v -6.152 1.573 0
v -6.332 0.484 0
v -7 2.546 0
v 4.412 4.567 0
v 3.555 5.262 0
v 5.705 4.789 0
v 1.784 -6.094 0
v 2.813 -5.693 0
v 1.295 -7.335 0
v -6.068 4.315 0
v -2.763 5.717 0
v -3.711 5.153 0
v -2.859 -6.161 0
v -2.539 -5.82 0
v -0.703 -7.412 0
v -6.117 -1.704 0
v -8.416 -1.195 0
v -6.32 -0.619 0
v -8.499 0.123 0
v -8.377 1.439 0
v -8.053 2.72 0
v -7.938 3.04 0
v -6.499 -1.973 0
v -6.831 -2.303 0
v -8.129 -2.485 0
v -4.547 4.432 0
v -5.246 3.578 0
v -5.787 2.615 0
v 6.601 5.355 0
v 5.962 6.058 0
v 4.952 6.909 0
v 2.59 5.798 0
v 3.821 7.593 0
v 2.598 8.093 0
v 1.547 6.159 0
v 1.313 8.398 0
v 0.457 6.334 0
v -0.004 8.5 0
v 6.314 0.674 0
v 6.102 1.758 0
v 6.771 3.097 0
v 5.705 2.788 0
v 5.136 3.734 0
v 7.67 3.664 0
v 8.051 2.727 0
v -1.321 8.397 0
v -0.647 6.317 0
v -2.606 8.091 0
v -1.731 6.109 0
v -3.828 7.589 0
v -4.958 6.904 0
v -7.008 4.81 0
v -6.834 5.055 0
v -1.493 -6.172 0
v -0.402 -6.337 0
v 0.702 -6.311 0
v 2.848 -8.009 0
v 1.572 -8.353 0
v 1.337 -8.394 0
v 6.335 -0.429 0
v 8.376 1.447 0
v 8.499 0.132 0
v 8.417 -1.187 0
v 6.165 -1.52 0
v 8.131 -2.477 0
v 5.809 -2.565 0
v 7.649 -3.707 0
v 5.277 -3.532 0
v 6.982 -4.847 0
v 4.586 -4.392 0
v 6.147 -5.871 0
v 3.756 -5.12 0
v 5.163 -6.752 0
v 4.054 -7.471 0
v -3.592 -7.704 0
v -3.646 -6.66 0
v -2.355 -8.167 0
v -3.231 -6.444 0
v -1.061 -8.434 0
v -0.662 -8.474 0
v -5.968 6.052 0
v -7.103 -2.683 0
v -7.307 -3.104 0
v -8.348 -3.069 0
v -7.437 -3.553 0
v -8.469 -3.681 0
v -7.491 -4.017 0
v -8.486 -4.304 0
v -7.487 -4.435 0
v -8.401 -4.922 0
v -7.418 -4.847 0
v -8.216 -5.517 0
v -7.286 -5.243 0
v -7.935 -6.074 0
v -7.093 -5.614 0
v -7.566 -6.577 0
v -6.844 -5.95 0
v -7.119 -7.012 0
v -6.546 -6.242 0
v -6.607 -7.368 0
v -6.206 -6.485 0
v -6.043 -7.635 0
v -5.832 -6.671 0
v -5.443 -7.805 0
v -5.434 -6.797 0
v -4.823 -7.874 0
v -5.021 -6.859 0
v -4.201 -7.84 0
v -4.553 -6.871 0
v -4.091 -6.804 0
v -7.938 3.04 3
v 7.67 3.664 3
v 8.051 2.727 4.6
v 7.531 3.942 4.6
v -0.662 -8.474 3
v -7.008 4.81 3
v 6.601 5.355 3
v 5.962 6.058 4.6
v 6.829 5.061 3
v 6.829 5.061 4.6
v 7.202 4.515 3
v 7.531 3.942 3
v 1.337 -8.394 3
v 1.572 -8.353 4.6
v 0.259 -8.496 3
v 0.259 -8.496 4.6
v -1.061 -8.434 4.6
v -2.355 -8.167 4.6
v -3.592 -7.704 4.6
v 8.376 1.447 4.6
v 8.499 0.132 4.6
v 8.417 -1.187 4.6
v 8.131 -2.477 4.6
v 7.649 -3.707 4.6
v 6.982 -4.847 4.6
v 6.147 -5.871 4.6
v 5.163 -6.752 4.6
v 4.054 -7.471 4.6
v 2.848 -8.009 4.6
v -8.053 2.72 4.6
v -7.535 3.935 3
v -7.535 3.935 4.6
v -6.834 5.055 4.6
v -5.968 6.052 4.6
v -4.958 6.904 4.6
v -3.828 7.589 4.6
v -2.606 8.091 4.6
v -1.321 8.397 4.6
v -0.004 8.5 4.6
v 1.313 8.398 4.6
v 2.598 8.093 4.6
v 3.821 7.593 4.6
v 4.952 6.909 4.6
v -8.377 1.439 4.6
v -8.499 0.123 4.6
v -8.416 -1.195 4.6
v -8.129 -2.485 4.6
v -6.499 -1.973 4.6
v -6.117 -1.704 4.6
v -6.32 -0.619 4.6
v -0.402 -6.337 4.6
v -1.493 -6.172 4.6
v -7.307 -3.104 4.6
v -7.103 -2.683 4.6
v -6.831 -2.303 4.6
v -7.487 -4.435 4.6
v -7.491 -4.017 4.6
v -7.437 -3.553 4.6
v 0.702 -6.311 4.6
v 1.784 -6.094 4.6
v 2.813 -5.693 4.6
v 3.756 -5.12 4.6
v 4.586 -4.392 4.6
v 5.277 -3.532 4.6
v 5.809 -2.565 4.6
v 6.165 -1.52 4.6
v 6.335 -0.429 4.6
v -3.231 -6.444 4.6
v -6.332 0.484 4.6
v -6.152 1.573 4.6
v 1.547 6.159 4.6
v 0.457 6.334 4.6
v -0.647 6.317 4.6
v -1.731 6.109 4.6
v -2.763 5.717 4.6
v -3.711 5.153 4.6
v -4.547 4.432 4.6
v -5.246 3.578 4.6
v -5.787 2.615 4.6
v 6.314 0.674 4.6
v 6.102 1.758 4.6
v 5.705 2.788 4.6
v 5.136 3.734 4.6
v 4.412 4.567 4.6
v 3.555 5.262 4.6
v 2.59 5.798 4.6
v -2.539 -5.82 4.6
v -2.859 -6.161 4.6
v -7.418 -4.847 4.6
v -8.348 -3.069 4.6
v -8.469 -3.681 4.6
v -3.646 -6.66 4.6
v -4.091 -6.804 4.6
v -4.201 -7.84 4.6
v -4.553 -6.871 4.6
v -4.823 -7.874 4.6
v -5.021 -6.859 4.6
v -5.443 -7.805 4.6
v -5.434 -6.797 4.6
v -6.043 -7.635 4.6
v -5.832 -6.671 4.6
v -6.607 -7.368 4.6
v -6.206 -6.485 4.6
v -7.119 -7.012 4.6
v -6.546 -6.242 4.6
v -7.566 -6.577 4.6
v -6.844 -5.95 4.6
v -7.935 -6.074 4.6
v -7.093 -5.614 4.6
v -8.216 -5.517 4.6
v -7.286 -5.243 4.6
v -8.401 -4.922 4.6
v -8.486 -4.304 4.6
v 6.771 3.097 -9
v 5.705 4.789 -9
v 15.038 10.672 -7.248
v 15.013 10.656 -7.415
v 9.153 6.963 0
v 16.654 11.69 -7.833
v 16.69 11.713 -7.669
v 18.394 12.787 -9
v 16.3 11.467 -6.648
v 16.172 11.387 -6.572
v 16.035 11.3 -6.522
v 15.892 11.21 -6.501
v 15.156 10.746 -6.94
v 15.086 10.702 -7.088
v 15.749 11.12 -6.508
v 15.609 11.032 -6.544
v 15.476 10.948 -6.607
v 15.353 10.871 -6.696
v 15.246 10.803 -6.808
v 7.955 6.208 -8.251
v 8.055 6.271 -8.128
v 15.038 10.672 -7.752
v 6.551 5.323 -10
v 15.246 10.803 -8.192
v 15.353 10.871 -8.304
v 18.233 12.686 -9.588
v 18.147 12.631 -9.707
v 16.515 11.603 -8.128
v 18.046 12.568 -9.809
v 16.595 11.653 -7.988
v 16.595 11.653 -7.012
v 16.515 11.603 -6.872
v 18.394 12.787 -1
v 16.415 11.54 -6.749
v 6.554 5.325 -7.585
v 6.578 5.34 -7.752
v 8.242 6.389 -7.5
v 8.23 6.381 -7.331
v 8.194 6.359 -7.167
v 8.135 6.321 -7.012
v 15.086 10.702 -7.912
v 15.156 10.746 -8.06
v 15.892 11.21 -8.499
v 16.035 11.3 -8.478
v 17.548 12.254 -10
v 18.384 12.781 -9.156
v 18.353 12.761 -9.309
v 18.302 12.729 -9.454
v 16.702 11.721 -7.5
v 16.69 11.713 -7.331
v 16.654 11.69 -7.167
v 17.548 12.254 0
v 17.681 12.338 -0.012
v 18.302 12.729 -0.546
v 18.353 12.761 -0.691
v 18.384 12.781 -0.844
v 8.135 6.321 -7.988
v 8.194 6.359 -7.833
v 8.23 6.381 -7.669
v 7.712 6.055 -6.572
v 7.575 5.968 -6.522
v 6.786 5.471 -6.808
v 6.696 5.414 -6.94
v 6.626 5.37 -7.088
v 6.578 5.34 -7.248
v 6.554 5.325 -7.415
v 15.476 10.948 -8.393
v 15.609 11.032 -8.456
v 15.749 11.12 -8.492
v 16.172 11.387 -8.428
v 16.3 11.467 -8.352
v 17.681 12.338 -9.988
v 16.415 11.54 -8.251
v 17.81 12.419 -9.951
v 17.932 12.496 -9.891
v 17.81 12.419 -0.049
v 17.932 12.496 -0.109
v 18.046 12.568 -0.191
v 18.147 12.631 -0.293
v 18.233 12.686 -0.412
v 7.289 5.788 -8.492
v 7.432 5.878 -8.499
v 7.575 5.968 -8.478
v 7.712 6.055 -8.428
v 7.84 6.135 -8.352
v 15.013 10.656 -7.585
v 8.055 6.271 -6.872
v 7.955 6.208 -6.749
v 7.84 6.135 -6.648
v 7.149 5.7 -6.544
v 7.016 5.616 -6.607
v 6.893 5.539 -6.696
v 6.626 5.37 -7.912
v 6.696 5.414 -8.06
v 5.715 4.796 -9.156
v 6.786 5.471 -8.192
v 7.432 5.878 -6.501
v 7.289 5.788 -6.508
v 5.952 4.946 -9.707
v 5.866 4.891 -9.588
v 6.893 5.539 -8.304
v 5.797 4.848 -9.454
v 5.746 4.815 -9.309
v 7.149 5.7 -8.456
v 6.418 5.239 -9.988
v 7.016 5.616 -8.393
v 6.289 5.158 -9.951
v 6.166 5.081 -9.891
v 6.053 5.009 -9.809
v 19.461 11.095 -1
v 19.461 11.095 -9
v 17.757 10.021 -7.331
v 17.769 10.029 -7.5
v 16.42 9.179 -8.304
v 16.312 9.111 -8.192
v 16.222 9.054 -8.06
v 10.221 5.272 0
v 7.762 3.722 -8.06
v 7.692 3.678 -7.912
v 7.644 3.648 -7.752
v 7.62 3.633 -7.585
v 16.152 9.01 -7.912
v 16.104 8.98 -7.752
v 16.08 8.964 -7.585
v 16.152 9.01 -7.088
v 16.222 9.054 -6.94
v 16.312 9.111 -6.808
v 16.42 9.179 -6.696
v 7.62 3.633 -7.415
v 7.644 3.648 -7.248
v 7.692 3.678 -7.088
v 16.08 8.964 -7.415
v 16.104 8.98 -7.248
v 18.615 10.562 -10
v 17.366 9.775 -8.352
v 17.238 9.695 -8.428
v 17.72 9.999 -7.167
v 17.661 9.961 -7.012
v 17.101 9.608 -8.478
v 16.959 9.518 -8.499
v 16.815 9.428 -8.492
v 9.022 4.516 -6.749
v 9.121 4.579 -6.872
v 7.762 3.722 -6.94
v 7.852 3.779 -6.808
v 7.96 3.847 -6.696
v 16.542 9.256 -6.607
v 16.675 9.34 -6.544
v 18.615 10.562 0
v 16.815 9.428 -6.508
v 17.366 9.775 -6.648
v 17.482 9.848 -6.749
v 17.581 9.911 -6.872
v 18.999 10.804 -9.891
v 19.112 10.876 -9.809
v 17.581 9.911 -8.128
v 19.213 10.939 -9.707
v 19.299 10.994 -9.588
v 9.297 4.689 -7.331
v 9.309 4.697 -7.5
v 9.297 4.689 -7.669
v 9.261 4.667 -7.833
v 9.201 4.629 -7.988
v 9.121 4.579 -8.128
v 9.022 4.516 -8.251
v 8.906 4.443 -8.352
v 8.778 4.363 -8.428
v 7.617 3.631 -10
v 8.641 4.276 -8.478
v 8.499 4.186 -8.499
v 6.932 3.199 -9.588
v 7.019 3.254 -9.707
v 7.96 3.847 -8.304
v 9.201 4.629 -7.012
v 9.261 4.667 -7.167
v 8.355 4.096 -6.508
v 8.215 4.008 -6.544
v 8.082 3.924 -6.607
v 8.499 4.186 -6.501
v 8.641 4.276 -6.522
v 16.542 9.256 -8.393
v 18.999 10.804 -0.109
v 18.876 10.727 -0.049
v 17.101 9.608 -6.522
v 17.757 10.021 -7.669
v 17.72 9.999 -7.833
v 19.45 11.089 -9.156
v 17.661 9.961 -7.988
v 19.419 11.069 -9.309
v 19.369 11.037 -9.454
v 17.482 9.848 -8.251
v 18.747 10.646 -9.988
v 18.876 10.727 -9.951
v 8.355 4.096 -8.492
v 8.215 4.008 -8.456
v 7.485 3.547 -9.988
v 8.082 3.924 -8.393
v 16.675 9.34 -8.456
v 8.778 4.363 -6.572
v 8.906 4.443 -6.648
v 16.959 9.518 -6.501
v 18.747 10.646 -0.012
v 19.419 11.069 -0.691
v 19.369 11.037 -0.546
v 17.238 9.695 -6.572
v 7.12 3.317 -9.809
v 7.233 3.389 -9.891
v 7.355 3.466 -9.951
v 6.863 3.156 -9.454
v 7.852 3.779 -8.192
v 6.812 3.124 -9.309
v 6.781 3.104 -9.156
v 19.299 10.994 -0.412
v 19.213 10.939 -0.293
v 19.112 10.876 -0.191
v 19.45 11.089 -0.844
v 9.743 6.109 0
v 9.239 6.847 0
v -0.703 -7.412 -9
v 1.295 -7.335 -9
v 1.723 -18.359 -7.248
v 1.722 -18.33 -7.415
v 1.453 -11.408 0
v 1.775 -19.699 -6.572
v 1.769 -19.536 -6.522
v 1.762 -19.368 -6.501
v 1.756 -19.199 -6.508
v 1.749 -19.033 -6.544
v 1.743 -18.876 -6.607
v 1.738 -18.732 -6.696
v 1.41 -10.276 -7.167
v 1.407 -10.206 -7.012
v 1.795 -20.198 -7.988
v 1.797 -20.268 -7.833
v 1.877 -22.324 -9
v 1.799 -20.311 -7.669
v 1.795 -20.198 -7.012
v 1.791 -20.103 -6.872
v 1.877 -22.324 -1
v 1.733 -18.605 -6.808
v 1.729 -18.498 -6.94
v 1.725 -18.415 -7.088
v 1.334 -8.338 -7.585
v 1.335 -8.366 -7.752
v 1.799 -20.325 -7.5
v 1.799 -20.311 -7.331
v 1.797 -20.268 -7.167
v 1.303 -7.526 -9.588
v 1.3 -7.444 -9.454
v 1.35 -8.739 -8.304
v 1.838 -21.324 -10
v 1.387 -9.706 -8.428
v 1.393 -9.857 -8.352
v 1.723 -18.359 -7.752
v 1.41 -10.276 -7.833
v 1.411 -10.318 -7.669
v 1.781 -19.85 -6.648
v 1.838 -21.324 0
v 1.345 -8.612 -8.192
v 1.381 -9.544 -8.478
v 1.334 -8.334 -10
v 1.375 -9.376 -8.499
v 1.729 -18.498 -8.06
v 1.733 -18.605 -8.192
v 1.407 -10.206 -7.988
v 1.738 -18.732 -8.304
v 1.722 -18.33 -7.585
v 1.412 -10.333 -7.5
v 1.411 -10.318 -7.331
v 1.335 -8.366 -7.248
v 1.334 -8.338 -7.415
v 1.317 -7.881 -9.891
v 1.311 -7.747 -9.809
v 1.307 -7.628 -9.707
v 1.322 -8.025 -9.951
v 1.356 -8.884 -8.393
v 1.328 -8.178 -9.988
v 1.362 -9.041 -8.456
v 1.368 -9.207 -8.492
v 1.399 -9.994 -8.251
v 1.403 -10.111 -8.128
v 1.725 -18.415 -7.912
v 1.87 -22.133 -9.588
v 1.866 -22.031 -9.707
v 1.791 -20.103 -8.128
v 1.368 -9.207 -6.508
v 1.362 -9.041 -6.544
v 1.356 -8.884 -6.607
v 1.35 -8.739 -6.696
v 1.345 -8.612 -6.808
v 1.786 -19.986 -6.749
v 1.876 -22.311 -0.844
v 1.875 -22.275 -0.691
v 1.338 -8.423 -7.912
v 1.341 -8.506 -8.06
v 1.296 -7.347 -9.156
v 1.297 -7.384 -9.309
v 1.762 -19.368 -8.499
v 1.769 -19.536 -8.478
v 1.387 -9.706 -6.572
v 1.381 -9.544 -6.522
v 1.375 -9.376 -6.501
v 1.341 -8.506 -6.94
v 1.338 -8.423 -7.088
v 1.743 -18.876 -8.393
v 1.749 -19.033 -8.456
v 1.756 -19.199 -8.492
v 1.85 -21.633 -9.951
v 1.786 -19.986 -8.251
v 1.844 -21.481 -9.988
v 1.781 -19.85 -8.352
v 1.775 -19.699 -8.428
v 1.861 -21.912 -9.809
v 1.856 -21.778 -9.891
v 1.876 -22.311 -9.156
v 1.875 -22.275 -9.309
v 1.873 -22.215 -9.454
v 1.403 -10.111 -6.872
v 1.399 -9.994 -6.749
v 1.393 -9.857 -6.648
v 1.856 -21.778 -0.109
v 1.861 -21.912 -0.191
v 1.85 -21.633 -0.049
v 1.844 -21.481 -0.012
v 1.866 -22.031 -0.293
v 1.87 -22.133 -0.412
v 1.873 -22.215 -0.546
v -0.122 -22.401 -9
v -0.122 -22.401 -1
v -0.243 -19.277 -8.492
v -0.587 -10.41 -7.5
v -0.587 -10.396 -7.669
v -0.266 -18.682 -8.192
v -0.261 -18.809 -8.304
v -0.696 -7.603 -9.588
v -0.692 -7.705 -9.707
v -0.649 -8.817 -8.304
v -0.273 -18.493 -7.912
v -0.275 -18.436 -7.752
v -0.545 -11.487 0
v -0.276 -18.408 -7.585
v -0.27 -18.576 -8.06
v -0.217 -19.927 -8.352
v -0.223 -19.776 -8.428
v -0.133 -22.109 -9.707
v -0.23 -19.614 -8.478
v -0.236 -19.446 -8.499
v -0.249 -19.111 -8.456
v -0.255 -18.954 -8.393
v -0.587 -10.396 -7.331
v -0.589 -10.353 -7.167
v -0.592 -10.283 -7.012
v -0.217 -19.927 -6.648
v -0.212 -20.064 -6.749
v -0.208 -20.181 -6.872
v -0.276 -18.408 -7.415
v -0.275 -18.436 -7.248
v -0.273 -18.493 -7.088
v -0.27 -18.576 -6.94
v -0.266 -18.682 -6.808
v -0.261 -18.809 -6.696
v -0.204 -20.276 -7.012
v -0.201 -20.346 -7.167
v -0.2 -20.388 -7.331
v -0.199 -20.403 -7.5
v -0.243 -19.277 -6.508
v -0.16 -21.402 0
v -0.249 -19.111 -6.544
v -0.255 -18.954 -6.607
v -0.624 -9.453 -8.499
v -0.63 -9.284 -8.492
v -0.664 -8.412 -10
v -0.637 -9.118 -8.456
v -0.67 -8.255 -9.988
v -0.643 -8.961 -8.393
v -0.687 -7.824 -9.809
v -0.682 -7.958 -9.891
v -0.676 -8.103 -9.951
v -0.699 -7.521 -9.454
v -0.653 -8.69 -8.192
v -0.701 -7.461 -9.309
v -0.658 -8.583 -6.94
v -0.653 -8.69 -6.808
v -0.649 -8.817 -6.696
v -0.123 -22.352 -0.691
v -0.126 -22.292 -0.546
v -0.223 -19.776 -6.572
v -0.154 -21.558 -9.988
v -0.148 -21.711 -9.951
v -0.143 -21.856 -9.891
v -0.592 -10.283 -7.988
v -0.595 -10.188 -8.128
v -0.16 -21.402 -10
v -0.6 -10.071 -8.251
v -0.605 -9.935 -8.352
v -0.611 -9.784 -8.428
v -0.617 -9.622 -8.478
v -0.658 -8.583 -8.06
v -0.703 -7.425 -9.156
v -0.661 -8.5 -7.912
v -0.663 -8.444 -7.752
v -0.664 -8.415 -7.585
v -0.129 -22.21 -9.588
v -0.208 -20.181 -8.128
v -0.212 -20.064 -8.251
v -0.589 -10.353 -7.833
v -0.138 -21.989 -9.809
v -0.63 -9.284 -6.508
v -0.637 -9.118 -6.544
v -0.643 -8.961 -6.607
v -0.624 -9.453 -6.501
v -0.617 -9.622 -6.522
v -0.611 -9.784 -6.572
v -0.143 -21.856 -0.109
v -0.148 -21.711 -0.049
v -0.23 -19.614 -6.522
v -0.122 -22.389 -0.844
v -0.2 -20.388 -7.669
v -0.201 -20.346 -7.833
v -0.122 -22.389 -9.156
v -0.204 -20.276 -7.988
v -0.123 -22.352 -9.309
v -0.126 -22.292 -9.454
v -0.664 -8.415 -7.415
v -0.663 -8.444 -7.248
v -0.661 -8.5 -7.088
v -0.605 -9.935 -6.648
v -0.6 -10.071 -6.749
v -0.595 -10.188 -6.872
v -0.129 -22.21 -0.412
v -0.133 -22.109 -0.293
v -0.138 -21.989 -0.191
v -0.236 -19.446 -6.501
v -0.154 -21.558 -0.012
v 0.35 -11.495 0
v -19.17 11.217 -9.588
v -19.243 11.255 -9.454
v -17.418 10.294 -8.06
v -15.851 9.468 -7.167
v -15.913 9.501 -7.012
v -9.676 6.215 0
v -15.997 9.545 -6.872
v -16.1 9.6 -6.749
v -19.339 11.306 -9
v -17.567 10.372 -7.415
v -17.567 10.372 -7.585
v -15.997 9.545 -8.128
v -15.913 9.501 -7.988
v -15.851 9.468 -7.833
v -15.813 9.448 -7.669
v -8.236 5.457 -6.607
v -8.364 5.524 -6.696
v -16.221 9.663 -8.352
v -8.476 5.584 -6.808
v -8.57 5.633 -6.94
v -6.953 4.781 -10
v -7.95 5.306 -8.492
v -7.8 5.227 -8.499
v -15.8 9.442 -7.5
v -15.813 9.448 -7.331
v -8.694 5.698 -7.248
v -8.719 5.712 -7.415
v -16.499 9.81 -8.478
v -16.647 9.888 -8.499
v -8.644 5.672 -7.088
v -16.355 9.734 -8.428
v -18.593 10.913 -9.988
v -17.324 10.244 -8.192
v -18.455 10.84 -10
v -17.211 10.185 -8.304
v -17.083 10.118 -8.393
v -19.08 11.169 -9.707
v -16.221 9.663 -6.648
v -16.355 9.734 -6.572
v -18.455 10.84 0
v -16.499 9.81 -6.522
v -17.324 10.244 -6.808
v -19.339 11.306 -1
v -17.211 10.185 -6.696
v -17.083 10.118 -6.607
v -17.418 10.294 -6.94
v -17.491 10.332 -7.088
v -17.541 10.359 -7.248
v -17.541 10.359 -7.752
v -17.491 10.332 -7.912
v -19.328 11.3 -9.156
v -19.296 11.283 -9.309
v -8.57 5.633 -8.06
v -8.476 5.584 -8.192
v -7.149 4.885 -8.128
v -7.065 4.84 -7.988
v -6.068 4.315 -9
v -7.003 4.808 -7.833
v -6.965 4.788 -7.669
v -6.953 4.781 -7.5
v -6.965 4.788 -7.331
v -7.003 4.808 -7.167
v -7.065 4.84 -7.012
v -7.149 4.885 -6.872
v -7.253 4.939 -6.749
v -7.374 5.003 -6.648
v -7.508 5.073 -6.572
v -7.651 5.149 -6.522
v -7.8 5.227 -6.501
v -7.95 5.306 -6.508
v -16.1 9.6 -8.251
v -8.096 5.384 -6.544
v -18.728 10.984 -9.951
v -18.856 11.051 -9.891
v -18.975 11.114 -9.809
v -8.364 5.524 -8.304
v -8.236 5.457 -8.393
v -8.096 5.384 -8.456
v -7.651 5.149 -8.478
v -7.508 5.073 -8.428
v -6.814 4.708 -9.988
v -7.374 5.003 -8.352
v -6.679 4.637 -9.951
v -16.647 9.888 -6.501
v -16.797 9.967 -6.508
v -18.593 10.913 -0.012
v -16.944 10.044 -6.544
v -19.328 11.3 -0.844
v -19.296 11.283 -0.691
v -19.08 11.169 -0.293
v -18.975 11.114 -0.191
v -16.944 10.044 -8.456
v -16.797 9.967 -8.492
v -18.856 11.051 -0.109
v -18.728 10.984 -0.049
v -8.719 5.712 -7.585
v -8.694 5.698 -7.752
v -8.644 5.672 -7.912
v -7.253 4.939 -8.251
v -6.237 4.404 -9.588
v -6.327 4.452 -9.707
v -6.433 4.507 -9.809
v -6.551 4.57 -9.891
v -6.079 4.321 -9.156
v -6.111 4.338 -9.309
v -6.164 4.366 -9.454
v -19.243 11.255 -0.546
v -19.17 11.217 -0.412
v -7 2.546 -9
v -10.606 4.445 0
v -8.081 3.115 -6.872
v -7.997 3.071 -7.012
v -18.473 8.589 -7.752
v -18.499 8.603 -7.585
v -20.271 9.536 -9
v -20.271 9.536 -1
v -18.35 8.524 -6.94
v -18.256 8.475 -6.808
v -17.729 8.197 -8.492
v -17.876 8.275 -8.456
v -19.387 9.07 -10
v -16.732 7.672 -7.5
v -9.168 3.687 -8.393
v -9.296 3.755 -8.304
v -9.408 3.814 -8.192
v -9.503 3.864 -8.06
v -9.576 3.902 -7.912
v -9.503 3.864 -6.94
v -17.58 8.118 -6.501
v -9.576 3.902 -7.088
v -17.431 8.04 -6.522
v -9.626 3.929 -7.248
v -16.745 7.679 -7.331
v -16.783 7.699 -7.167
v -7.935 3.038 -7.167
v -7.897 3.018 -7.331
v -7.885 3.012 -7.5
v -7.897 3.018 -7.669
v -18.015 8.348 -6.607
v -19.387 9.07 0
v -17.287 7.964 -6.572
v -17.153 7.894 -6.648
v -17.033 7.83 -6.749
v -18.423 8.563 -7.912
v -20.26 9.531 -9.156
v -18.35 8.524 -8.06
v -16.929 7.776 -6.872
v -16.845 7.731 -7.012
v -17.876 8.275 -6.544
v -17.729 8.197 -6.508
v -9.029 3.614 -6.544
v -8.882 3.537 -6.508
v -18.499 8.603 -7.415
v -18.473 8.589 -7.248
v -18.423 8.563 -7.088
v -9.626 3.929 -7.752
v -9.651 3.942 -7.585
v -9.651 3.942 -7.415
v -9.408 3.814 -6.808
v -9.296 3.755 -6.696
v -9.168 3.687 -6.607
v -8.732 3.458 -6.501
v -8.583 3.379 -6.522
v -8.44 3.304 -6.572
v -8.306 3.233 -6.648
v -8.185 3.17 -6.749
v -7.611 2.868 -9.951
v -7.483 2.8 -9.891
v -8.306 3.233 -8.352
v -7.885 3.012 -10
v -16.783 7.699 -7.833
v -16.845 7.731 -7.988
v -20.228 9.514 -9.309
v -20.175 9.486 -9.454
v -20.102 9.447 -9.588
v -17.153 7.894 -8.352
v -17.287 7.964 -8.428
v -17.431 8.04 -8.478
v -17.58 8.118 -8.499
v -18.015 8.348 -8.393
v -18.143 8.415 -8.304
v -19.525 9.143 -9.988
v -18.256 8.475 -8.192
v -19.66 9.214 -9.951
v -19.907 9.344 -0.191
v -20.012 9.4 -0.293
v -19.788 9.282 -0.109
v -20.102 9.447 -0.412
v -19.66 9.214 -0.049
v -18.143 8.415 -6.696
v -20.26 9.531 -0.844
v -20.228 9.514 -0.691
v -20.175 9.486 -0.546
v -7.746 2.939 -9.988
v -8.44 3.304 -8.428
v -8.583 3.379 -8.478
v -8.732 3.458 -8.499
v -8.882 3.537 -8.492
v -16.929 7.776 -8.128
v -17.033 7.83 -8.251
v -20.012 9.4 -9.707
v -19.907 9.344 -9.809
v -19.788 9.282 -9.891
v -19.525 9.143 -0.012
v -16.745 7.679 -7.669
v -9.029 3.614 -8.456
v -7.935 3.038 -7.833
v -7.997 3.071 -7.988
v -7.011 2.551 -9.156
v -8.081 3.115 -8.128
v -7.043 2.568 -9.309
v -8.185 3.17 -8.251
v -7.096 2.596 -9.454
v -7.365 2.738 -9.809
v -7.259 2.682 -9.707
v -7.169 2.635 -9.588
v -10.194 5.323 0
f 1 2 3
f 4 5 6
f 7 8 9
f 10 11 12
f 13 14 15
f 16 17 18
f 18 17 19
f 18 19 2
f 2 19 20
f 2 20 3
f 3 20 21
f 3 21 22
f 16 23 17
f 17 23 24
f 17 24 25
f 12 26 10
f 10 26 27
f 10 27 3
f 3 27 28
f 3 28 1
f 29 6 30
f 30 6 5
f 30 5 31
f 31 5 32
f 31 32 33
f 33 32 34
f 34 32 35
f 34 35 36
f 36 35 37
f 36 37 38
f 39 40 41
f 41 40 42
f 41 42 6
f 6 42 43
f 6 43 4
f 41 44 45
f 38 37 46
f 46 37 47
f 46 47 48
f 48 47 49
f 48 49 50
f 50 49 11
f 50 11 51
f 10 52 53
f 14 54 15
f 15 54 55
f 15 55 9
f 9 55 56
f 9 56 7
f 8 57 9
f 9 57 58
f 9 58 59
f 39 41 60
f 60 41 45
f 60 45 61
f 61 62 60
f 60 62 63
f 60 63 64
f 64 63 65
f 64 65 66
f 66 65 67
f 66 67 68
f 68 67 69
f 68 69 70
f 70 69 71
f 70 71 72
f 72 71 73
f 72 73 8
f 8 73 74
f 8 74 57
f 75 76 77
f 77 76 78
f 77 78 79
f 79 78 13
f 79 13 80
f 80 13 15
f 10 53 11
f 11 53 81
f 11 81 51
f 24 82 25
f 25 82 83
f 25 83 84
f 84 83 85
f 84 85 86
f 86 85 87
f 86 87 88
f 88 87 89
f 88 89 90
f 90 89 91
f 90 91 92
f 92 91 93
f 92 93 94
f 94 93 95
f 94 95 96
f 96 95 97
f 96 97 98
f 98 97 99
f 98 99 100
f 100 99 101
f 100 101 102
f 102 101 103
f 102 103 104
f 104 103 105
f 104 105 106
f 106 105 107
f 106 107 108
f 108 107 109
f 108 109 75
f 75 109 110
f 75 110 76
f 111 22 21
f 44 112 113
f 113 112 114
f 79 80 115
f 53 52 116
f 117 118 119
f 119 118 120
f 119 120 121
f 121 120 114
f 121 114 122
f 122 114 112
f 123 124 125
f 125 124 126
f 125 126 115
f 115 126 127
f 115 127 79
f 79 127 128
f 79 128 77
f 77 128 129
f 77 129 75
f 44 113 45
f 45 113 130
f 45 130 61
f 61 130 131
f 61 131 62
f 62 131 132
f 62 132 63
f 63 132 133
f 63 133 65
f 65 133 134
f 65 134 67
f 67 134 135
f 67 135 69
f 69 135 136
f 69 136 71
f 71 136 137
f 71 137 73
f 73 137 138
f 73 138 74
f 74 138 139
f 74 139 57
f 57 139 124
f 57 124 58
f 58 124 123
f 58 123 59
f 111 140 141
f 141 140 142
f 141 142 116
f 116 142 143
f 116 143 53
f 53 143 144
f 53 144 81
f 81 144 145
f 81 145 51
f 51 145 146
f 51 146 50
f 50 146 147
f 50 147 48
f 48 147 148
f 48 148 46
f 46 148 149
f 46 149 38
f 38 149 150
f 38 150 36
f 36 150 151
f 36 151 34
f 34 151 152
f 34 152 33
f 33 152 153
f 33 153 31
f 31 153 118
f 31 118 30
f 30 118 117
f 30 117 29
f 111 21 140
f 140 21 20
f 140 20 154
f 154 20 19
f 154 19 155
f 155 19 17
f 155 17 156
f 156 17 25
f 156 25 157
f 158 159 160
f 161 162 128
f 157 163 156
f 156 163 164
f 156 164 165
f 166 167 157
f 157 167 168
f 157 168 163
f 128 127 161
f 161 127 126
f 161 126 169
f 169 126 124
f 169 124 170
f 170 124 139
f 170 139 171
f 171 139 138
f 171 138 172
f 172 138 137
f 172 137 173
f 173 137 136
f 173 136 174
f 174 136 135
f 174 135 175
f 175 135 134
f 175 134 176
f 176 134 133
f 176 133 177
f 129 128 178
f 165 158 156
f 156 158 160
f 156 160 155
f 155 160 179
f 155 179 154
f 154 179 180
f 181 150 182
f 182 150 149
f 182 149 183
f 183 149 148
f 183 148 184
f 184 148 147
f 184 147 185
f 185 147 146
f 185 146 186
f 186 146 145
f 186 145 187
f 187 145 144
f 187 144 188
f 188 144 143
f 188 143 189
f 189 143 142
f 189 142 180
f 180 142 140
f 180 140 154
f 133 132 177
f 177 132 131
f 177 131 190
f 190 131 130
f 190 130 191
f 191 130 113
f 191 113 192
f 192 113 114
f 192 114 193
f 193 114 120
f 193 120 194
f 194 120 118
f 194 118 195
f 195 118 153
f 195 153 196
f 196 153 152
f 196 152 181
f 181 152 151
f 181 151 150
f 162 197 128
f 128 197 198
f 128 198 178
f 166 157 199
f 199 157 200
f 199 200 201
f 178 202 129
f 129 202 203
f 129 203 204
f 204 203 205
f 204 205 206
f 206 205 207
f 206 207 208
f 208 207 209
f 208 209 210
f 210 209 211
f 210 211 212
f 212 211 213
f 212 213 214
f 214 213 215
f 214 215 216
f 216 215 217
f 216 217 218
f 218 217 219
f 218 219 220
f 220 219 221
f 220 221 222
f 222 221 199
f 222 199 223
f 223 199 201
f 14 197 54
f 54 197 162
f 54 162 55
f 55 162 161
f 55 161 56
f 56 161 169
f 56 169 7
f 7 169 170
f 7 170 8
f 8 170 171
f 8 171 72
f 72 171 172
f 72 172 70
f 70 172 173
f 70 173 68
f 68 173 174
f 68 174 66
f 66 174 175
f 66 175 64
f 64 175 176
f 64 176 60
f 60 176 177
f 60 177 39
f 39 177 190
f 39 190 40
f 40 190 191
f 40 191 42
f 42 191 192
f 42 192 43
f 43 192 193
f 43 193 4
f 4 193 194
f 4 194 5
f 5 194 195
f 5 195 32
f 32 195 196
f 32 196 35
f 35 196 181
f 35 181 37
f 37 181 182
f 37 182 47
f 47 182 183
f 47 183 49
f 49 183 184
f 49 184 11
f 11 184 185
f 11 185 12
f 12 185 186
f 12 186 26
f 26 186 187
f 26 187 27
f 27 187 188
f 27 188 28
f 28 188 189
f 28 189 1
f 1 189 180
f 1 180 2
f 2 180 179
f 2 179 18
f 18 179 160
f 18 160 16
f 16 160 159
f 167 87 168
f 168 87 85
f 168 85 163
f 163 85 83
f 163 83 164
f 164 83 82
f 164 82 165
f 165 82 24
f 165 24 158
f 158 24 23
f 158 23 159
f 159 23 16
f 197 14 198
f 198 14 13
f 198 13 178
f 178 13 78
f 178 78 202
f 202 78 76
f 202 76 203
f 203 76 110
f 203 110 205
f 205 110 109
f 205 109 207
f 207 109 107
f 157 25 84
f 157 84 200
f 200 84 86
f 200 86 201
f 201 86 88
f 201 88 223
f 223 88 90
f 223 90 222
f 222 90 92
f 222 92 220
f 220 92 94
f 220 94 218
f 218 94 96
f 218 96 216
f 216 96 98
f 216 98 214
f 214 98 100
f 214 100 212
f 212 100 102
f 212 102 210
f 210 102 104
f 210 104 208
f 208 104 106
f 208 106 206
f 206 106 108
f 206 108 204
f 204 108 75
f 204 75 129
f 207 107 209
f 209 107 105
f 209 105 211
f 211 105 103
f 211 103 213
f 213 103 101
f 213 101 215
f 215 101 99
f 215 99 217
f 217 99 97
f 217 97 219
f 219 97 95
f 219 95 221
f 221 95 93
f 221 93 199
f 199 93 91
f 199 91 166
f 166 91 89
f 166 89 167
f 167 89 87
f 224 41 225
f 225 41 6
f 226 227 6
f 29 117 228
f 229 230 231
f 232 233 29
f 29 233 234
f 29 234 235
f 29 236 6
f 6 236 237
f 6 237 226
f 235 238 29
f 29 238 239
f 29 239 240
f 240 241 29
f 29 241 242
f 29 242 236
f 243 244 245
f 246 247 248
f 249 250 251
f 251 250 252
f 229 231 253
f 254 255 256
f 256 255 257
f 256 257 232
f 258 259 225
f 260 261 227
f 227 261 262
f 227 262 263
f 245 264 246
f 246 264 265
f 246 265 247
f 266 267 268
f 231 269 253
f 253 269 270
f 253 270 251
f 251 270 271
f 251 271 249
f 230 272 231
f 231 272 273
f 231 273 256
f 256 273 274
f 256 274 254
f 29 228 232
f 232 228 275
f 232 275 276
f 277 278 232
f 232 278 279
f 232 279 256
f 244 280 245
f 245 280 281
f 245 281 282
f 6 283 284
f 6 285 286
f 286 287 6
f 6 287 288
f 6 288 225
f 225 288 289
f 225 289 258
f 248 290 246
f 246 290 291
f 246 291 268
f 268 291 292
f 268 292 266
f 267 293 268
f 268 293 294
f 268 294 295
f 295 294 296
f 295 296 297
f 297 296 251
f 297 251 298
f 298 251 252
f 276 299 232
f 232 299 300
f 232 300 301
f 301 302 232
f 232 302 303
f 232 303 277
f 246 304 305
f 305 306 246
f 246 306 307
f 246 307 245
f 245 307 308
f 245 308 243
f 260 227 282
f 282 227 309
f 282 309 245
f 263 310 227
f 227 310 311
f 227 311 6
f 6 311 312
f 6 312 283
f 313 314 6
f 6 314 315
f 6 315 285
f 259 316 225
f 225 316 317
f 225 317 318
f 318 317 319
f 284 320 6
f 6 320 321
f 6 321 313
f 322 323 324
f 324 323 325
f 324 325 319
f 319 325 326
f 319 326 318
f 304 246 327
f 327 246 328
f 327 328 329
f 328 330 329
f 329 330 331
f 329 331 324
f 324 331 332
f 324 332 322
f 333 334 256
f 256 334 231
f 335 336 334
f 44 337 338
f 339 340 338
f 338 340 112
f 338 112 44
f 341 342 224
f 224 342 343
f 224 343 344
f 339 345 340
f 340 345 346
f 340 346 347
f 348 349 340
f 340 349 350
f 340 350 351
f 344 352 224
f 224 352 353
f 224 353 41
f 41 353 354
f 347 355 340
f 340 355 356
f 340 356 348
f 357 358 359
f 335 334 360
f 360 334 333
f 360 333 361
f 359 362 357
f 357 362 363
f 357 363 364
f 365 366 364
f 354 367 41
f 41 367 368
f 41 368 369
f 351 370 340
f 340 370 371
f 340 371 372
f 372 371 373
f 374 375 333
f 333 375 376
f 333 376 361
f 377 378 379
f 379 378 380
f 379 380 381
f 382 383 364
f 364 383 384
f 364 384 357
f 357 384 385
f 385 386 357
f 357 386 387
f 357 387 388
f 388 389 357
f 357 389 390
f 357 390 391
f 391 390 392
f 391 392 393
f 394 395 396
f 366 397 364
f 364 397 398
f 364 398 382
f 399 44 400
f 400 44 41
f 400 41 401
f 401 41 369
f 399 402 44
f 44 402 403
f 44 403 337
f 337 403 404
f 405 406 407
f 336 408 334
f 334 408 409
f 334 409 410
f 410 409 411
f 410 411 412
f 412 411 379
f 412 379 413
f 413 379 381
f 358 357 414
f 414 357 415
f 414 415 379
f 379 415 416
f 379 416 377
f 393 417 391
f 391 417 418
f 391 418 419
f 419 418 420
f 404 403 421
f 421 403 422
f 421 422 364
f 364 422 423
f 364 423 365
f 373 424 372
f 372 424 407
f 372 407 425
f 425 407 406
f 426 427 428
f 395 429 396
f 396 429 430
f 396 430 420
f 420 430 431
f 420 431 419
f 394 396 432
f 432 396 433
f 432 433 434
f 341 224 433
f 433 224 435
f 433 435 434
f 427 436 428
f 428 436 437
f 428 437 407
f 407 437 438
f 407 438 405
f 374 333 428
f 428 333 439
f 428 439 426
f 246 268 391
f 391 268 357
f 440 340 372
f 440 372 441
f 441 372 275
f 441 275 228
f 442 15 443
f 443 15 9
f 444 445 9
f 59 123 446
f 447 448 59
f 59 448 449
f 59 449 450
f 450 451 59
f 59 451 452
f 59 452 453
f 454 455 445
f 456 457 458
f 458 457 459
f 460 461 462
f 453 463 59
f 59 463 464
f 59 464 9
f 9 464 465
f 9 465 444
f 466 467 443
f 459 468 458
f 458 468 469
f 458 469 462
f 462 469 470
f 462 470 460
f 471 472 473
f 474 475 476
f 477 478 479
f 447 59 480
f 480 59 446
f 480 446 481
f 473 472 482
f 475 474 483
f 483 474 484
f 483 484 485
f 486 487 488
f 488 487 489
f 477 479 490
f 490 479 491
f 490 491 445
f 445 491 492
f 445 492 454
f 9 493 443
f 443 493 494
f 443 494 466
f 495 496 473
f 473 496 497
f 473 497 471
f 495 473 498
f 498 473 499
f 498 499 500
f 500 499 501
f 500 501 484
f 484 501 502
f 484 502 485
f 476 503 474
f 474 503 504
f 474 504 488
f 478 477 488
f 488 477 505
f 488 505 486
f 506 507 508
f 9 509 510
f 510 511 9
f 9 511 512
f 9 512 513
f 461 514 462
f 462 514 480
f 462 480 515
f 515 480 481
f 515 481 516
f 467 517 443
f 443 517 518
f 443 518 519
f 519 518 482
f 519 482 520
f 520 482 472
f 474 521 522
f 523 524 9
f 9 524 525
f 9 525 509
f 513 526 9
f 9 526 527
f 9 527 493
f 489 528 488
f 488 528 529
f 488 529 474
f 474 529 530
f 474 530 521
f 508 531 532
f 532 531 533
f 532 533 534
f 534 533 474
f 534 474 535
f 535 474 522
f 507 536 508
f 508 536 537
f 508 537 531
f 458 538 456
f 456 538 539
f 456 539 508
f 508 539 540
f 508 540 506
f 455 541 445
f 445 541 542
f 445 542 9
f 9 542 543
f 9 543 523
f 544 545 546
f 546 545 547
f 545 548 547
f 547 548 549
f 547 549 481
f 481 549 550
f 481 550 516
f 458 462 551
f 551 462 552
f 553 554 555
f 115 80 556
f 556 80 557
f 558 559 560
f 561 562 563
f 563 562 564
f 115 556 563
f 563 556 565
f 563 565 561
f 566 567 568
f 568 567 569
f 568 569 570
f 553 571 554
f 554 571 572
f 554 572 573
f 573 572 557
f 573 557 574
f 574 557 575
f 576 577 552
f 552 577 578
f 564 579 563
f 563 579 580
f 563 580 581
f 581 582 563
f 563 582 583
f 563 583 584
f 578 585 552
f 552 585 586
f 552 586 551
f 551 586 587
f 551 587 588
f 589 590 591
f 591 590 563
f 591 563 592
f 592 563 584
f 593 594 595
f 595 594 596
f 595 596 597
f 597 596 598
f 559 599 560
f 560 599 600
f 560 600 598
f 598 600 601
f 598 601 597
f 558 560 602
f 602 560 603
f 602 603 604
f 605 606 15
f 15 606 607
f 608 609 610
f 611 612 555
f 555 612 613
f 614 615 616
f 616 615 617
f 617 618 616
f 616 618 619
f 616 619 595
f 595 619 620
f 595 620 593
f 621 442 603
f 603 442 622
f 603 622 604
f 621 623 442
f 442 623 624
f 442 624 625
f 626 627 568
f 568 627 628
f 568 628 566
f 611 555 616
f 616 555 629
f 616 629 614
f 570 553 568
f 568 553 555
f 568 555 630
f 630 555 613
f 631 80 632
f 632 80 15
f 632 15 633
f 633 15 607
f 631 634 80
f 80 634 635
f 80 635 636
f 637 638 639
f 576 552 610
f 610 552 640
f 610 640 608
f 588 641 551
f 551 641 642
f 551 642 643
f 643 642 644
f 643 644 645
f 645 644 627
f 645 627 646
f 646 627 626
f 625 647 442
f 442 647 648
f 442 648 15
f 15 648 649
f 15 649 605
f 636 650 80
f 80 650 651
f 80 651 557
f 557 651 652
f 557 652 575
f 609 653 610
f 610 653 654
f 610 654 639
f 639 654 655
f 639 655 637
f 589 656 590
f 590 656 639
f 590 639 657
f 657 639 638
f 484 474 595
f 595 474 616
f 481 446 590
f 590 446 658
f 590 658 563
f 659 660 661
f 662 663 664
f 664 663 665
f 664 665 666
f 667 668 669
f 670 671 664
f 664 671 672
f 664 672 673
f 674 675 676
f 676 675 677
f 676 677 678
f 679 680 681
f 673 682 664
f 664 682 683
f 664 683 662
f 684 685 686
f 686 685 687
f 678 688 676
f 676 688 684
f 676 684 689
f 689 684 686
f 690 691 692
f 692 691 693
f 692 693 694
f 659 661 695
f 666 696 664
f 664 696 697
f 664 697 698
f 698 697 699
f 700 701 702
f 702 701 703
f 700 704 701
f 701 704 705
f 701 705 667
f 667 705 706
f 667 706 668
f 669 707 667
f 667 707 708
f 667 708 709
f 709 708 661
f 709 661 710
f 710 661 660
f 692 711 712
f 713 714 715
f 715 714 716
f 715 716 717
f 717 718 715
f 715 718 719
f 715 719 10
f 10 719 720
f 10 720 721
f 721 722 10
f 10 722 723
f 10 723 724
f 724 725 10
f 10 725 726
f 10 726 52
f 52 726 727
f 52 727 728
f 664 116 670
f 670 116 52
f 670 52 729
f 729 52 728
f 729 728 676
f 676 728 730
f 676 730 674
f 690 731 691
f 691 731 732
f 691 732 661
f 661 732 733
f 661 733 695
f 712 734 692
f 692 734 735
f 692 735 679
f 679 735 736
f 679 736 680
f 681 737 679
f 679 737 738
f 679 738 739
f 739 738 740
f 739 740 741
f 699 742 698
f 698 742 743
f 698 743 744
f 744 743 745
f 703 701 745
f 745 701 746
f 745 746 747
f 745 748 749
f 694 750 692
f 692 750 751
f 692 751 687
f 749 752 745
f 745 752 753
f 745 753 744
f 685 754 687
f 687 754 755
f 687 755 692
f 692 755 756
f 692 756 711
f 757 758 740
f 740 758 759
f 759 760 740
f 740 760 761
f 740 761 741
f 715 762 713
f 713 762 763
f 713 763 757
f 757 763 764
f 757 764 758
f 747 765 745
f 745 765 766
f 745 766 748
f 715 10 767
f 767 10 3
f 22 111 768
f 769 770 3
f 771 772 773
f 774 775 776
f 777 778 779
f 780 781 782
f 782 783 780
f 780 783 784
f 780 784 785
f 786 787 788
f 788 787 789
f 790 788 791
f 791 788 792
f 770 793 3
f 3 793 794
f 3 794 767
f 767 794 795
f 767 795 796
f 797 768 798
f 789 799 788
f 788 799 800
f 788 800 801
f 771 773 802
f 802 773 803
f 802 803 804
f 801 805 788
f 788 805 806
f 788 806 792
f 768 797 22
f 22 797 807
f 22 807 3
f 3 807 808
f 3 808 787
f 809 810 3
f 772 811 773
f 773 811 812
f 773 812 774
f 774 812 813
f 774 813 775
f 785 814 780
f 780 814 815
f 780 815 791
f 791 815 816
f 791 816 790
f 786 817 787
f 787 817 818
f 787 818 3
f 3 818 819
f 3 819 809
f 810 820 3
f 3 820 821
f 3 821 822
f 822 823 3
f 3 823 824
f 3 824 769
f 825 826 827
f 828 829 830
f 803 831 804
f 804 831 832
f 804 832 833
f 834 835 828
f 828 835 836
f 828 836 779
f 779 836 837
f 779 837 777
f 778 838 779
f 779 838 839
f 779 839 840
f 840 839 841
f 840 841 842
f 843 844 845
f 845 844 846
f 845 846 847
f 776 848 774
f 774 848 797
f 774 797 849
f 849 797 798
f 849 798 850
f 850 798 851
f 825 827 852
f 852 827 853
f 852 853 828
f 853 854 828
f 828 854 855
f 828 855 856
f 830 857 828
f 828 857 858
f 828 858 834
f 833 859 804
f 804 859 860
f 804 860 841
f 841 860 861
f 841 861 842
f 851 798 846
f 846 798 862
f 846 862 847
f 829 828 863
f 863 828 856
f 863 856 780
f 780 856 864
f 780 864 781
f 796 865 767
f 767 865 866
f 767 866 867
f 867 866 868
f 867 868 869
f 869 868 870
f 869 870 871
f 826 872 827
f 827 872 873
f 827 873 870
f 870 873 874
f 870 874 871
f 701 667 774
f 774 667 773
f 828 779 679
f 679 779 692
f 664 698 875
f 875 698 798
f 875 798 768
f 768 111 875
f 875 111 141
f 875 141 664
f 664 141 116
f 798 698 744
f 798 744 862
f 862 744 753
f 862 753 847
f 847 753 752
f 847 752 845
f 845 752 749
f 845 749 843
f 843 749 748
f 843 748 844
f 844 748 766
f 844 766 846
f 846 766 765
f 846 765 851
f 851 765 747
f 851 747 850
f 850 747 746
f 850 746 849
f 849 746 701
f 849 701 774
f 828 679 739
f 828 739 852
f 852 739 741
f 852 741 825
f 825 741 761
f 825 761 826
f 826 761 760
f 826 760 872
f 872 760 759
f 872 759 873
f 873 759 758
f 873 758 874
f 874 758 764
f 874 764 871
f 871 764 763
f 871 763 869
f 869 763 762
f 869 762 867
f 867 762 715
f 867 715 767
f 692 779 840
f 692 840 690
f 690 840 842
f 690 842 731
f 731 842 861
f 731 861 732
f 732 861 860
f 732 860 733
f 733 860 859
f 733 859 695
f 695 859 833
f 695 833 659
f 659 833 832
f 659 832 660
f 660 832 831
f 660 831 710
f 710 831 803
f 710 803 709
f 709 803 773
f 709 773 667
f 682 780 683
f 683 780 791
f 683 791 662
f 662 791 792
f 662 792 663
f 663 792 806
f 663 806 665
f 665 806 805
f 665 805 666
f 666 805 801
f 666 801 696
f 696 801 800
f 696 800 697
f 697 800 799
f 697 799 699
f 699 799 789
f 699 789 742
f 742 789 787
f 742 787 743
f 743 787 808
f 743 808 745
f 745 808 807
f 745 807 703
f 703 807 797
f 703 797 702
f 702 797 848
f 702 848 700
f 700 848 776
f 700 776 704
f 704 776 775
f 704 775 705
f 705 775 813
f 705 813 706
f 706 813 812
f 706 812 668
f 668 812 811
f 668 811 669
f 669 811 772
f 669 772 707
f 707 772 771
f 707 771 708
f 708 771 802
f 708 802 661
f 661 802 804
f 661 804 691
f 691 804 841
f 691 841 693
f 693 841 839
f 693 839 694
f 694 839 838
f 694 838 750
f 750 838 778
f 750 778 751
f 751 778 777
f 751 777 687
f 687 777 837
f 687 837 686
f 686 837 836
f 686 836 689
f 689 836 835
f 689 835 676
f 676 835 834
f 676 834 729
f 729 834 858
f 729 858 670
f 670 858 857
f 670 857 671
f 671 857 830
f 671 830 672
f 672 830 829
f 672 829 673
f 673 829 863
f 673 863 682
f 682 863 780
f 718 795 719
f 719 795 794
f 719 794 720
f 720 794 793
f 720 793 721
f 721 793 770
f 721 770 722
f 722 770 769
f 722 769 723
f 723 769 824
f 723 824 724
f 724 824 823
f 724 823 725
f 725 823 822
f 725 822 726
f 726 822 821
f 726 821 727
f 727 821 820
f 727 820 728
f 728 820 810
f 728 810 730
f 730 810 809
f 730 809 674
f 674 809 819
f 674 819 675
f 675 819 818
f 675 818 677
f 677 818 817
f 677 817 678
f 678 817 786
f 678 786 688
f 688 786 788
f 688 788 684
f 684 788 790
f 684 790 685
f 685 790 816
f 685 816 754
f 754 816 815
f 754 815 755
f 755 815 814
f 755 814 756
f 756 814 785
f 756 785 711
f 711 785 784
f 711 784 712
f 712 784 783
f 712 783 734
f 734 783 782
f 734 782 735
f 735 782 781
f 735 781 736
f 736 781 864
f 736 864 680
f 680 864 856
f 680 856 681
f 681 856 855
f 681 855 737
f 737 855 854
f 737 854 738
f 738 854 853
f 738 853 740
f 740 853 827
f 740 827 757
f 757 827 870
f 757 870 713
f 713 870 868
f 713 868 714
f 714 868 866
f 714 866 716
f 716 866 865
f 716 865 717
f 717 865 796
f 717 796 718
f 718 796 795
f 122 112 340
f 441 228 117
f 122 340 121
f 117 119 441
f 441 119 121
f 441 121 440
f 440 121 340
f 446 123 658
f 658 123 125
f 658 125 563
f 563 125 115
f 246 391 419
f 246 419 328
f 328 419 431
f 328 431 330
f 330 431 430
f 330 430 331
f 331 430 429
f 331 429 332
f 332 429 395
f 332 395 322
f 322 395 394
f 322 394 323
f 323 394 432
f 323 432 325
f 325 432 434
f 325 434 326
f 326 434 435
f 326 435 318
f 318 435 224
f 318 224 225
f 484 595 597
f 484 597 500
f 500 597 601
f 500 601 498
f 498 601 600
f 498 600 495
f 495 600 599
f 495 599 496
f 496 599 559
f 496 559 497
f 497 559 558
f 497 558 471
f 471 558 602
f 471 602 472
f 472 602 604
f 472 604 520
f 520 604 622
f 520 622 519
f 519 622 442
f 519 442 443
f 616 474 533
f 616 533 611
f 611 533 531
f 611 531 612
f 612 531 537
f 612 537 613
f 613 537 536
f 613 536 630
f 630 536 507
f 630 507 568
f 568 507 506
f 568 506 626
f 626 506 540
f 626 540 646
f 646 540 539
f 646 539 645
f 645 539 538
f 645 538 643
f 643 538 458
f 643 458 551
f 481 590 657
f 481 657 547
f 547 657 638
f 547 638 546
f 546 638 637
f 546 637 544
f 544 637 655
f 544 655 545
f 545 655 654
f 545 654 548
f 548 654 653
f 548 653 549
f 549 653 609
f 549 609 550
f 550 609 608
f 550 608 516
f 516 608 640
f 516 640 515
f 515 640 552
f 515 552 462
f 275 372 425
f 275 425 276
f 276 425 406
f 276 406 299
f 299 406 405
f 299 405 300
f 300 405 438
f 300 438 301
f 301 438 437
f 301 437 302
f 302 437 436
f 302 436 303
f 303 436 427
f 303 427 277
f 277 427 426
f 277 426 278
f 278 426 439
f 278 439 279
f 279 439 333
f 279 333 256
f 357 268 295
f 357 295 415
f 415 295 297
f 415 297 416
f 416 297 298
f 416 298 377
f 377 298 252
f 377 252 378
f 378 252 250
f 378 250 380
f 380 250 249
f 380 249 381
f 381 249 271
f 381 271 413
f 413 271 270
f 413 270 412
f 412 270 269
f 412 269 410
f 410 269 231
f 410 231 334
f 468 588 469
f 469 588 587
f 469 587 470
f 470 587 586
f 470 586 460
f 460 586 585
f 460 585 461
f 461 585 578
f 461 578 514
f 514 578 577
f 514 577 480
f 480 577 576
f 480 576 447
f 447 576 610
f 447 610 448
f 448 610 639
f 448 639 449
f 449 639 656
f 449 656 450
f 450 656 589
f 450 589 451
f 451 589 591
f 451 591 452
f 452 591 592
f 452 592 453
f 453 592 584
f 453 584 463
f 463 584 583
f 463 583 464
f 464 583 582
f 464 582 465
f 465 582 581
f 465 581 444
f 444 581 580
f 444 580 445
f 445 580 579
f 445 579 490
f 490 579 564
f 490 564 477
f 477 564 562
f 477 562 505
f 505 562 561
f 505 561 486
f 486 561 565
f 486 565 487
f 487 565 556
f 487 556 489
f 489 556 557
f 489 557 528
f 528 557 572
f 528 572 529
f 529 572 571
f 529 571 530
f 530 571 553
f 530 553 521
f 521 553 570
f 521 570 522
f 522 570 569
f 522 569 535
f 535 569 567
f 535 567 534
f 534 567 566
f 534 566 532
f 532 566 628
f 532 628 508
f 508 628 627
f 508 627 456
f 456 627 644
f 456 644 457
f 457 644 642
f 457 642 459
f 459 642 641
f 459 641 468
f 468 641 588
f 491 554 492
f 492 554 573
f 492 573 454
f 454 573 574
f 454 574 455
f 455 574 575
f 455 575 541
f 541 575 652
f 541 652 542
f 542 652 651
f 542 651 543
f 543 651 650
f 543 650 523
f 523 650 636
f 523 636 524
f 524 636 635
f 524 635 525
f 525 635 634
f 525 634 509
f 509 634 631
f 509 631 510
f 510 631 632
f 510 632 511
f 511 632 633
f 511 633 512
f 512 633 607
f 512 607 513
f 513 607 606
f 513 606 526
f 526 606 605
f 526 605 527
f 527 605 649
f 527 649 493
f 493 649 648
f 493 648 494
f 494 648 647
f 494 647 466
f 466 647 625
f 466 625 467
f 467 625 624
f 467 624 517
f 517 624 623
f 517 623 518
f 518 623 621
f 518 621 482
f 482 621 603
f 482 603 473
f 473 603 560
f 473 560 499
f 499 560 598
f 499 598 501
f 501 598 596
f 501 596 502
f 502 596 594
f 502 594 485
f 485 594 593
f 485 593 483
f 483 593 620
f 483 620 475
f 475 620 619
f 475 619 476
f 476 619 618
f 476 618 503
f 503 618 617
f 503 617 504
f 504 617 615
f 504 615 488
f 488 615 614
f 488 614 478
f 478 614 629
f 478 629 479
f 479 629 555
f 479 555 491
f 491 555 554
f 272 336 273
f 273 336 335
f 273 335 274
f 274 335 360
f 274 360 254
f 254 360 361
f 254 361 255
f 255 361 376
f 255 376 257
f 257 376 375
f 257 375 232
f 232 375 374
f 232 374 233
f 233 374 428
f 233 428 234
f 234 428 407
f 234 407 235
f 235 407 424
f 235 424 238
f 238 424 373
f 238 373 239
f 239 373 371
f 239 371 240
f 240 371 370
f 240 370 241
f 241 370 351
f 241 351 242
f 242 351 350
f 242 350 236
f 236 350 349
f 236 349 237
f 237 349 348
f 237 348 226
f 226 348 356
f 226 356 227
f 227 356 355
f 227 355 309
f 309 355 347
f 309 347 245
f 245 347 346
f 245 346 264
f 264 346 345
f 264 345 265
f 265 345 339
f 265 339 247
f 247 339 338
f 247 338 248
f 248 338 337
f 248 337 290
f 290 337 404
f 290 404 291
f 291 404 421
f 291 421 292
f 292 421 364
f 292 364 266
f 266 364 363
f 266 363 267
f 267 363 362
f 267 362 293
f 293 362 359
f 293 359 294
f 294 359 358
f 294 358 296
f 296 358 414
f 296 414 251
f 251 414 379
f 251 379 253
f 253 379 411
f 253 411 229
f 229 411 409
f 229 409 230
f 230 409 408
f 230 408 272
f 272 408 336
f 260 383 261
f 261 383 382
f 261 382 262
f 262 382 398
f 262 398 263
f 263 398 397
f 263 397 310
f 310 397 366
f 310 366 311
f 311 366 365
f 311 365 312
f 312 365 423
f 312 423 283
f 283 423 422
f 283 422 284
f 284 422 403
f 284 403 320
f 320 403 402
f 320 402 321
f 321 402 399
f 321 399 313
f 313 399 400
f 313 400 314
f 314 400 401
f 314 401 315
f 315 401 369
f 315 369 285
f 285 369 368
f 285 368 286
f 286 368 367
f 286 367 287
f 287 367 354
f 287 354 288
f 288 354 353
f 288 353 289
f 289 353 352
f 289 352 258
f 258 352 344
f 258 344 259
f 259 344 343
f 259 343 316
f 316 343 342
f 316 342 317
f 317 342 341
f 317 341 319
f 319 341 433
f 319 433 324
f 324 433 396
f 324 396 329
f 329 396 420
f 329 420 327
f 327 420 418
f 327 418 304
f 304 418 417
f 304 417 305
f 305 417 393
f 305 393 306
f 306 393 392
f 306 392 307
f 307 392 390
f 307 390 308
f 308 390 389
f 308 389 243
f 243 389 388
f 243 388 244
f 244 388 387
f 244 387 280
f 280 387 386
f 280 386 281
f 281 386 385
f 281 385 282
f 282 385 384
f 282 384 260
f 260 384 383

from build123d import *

# Parameters (mm, degrees)
CROQUIS1_R              = 8.5
SALIENTE_EXTRUIR1_DEPTH = 4.6
CROQUIS6_R              = 6.35
CORTAR_EXTRUIR1_DEPTH   = 13.870897405
CROQUIS13_R             = 2.775
CORTAR_EXTRUIR7_DEPTH   = 10
SALIENTE_EXTRUIR4_DEPTH = 4.6
SALIENTE_EXTRUIR6_DEPTH = 10
CHAFL_N1_SIZE           = 3
REDONDEO1_R             = 1
CROQUIS16_R             = 1
CORTAR_EXTRUIR8_DEPTH   = 5
CHAFL_N3_SIZE           = 3
REDONDEO3_R             = 1
CROQUIS19_R             = 1
CORTAR_EXTRUIR10_DEPTH  = 5
CROQUIS20_R             = 1
CORTAR_EXTRUIR11_DEPTH  = 5


with BuildPart() as part:
    # Croquis1 → Saliente-Extruir1 (new body)
    with BuildSketch(Plane.XY):
        Circle(CROQUIS1_R)
    extrude(amount=SALIENTE_EXTRUIR1_DEPTH)

    # Croquis6 → Cortar-Extruir1 (cut, through all)
    with BuildSketch(Plane.XY.offset(4.6)):
        Circle(CROQUIS6_R)
    extrude(amount=-CORTAR_EXTRUIR1_DEPTH, mode=Mode.SUBTRACT)

    # Croquis13 → Cortar-Extruir7 (cut)
    with BuildSketch(Plane(origin=(0, 0, 0), x_dir=(-1, 0, 0), z_dir=(0, 0, -1))):
        with Locations((4.716932975, -4.100371118)):
            Circle(CROQUIS13_R)
    extrude(amount=-CORTAR_EXTRUIR7_DEPTH, mode=Mode.SUBTRACT)

    # Croquis14 → Saliente-Extruir4 (add)
    with BuildSketch(Plane(origin=(0, 0, 0), x_dir=(-1, 0, 0), z_dir=(0, 0, -1))):
        with BuildLine():
            ThreePointArc((1.551676597, -6.157499471), (7.565960492, -6.576995274), (6.313526123, -0.679623346))
            ThreePointArc((6.313526123, -0.679623346), (6.23633763, -1.196073977), (6.11697615, -1.704436205))
            ThreePointArc((6.11697615, -1.704436205), (7.102852286, -2.683326996), (7.490692392, -4.017403077))
            ThreePointArc((7.490692392, -4.017403077), (6.844195938, -5.949574331), (5.020802515, -6.858683701))
            ThreePointArc((5.020802515, -6.858683701), (3.645732845, -6.660284257), (2.539161891, -5.820236841))
            ThreePointArc((2.539161891, -5.820236841), (2.052358742, -6.0091866), (1.551676597, -6.157499471))
        make_face()
    extrude(amount=-SALIENTE_EXTRUIR4_DEPTH)

    # Croquis15 → Saliente-Extruir6 (add)
    with BuildSketch(Plane(origin=(0, 0, 0), x_dir=(-1, 0, 0), z_dir=(0, 0, -1))):
        Polygon((6.067896868, 4.315078912), (7, 2.545563795), (20.271363381, 9.536337286), (19.339260249, 11.305852404), align=None)
        Polygon((0.121525269, -22.401216868), (0.703019524, -7.412492291), (-1.295477087, -7.334959724), (-1.876971341, -22.323684301), align=None)
        Polygon((-19.460785518, 11.095364464), (-6.770916391, 3.097413379), (-5.704522913, 4.789395929), (-18.39439204, 12.787347014), align=None)
    extrude(amount=SALIENTE_EXTRUIR6_DEPTH)

    # Chaflán1
    chafl_n1_edges = [part.edges().sort_by_distance(p)[0] for p in [
        (-7.525199261, 3.952388655, 0),
    ]]
    chamfer(chafl_n1_edges, length=CHAFL_N1_SIZE)

    # Redondeo1
    redondeo1_edges = [part.edges().sort_by_distance(p)[0] for p in [
        (-19.805311815, 10.421094845, 0),
        (-6.533948434, 3.430321354, -10),
        (-19.805311815, 10.421094845, -10),
    ]]
    fillet(redondeo1_edges, radius=REDONDEO1_R)

    # Croquis16 → Cortar-Extruir8 (cut)
    with BuildSketch(Plane(origin=(-0.470783925, -0.893741523, 0), x_dir=(-0.8847575587350184, 0.46605156609676857, 0), z_dir=(-0.4660515660967685, -0.8847575587350183, 0))):
        with Locations(Location((9.379666904, 7.5, 0), (0, 0, 180))):
            Circle(CROQUIS16_R)
        with Locations(Location((19.379666904, 7.5, 0), (0, 0, 180))):
            Circle(CROQUIS16_R)
    extrude(amount=-CORTAR_EXTRUIR8_DEPTH, mode=Mode.SUBTRACT)

    # Chaflán3
    chafl_n3_edges = [part.edges().sort_by_distance(p)[0] for p in [
        (0.339730649, -8.493208056, 0),
        (7.185468612, 4.540819401, 0),
    ]]
    chamfer(chafl_n3_edges, length=CHAFL_N3_SIZE)

    # Redondeo3
    redondeo3_edges = [part.edges().sort_by_distance(p)[0] for p in [
        (0.877723036, -22.362450584, 0),
        (0.296228781, -7.373726008, -10),
        (0.877723036, -22.362450584, -10),
        (18.927588779, 11.941355739, 0),
        (6.237719652, 3.943404654, -10),
        (18.927588779, 11.941355739, -10),
    ]]
    fillet(redondeo3_edges, radius=REDONDEO3_R)

    # Croquis19 → Cortar-Extruir10 (cut)
    with BuildSketch(Plane(origin=(-0.989101784, -0.038372645, 0), x_dir=(0, 0, 1), z_dir=(-0.9992483051032128, -0.038766283654184684, 0))):
        with Locations(Location((-7.5, -9.379666904, 0), (0, 0, 270))):
            Circle(CROQUIS19_R)
        with Locations(Location((-7.5, -19.379666904, 0), (0, 0, 270))):
            Circle(CROQUIS19_R)
    extrude(amount=-CORTAR_EXTRUIR10_DEPTH, mode=Mode.SUBTRACT)

    # Croquis20 → Cortar-Extruir11 (cut)
    with BuildSketch(Plane(origin=(0.527782577, -0.83740095, 0), x_dir=(0.8459912750808336, 0.5331967390064434, 0), z_dir=(0.5331967390064434, -0.8459912750808336, 0))):
        with Locations((9.379666904, -7.5)):
            Circle(CROQUIS20_R)
        with Locations((19.379666904, -7.5)):
            Circle(CROQUIS20_R)
    extrude(amount=-CORTAR_EXTRUIR11_DEPTH, mode=Mode.SUBTRACT)


solid = part.part
